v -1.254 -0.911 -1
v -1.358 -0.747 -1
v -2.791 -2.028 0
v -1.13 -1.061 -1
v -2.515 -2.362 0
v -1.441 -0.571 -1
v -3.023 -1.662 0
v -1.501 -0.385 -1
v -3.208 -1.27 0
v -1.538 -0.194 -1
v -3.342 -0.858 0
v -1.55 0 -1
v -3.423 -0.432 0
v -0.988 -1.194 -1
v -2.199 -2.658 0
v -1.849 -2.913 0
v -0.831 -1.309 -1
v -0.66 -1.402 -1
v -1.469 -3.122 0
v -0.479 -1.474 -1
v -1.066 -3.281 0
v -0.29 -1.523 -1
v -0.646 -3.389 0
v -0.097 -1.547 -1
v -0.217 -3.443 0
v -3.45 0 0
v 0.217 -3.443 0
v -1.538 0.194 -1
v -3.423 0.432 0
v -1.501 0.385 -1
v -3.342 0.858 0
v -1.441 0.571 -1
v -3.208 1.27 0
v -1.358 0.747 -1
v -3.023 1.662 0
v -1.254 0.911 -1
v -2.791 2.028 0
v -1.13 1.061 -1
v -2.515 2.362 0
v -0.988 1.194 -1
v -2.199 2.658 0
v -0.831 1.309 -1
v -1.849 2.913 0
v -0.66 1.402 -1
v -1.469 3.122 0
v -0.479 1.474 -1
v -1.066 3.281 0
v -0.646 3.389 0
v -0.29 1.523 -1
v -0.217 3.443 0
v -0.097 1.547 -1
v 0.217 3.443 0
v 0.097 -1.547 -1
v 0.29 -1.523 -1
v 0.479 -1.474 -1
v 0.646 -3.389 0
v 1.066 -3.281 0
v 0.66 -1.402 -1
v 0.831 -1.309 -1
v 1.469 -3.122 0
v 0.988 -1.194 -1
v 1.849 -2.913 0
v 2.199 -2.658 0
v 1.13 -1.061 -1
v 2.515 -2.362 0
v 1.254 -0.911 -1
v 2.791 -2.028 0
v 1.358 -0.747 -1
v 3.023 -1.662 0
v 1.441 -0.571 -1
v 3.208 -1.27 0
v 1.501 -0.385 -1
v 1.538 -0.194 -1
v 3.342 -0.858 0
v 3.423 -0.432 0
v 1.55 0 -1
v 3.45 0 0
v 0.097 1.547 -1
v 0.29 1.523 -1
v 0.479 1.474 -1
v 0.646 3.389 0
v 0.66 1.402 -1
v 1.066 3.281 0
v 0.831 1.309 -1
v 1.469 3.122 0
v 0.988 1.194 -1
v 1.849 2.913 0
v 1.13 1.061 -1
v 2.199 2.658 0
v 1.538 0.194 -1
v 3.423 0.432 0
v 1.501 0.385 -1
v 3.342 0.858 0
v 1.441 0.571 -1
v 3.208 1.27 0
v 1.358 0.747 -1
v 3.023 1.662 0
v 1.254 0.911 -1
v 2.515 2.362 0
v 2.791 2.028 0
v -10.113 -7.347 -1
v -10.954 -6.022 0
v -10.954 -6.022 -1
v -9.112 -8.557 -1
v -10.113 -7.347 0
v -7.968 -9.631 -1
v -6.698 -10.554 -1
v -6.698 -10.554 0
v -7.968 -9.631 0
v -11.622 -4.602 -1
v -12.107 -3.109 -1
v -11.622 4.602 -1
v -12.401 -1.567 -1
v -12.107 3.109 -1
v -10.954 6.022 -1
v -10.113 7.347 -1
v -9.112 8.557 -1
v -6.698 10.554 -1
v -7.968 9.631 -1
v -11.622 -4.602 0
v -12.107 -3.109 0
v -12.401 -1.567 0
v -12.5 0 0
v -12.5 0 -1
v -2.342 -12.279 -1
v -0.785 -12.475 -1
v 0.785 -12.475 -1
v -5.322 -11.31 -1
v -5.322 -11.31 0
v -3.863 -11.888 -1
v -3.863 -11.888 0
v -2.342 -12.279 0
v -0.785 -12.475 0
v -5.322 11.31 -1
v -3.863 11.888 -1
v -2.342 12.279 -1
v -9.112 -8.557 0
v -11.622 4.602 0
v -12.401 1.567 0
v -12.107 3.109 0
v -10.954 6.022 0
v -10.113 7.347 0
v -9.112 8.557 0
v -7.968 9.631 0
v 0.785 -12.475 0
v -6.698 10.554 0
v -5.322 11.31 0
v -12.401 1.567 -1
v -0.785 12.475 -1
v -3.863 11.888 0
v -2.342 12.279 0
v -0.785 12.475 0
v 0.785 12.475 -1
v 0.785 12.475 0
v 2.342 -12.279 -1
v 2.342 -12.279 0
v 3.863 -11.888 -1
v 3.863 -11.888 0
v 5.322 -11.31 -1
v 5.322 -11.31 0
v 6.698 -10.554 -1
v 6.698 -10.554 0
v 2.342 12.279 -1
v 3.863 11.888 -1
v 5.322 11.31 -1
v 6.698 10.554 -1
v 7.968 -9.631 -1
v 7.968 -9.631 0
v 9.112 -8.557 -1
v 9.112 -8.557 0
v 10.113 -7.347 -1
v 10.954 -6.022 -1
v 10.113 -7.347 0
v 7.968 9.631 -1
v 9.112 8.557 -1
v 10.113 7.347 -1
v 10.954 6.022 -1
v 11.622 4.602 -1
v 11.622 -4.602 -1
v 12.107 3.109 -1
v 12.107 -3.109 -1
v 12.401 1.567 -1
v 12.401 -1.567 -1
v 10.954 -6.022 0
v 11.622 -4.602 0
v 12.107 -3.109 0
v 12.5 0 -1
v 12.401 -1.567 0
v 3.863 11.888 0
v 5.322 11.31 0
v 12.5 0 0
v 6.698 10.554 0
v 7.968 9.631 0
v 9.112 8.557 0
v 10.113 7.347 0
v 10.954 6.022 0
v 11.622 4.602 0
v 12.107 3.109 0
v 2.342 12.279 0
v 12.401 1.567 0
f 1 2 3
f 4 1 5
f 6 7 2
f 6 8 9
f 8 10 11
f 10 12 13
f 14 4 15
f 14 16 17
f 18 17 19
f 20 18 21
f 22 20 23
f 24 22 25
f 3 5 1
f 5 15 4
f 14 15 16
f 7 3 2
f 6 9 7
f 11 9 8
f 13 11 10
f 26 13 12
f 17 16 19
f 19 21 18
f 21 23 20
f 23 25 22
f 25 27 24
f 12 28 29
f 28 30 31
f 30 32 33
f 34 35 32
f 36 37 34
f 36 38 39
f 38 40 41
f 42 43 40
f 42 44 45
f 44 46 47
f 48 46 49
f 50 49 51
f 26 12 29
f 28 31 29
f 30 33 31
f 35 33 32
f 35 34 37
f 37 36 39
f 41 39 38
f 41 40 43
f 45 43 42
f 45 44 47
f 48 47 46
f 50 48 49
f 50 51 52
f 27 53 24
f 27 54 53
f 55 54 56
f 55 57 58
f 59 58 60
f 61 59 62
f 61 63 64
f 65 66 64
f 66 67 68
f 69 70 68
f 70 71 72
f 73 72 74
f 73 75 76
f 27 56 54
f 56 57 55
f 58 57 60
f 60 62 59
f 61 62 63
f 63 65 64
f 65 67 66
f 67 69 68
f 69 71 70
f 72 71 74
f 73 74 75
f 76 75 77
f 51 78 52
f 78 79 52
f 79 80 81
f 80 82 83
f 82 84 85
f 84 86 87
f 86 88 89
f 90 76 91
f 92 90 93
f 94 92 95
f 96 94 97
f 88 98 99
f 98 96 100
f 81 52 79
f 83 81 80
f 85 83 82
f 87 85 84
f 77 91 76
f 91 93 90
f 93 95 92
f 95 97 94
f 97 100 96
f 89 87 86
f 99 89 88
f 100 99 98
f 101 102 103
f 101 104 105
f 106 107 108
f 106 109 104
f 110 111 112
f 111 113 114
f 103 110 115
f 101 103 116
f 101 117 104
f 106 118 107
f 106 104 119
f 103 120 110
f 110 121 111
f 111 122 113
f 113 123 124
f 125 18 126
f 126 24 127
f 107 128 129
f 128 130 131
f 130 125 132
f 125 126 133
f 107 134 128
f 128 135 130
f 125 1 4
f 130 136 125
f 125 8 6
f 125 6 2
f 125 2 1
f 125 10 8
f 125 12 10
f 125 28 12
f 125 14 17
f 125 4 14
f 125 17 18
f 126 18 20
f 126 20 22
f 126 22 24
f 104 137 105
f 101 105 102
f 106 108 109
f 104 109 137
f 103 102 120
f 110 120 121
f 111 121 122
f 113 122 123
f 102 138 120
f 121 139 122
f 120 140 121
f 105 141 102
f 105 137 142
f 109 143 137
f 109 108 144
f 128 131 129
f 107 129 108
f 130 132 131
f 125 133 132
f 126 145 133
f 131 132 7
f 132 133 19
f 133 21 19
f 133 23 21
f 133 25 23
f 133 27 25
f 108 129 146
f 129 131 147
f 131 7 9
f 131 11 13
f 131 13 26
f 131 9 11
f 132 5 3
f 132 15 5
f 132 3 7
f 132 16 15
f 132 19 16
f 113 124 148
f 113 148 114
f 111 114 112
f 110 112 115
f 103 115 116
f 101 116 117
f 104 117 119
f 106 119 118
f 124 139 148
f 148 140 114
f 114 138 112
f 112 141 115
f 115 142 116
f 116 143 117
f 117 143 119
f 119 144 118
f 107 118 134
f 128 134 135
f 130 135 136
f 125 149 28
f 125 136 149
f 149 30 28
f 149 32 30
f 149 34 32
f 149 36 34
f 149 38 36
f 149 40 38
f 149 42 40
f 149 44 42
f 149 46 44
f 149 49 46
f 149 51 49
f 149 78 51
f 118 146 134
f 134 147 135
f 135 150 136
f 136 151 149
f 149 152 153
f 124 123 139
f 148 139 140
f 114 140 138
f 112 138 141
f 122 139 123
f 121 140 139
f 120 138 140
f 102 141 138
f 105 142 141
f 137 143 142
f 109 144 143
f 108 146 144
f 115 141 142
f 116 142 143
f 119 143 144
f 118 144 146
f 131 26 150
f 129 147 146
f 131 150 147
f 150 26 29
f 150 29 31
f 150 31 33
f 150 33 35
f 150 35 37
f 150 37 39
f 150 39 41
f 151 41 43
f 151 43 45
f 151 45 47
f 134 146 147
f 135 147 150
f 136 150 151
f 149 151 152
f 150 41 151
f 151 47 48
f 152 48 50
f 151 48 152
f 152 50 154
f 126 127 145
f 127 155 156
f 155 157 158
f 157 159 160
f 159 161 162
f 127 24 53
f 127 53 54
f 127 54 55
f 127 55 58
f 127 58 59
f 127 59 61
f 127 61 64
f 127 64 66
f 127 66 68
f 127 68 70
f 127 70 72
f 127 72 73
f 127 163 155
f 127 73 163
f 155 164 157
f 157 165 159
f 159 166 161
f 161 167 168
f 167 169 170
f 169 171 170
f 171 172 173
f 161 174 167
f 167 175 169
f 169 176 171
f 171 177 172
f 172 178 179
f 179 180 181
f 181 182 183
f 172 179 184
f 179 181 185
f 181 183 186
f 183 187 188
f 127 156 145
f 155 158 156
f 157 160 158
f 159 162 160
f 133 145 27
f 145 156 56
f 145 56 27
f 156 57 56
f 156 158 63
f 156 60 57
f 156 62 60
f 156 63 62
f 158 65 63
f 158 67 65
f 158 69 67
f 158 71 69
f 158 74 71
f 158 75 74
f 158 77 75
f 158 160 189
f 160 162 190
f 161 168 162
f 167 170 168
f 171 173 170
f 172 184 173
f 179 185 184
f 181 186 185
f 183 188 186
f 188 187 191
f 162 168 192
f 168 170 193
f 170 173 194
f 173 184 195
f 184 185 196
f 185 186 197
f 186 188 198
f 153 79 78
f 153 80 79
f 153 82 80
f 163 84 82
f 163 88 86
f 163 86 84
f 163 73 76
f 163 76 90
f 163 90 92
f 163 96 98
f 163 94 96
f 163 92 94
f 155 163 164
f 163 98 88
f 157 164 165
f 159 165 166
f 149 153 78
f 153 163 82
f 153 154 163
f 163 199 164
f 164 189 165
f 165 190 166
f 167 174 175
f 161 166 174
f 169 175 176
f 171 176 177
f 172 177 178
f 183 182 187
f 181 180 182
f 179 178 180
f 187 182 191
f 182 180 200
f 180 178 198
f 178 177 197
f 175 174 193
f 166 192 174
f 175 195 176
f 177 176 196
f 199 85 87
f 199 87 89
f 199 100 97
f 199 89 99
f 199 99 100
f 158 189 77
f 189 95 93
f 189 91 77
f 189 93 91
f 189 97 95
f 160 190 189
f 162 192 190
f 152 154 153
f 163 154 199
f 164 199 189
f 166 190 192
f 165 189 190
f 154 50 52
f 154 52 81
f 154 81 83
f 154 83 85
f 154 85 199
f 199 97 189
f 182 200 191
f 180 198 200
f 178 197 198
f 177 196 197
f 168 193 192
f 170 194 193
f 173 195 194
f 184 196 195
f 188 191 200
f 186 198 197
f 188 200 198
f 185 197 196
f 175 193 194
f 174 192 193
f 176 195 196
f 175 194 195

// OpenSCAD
$fn = 50;

difference() {
	union() {
		translate(v = [0, 0, -1.0]) {
			cylinder(h = 1.0, r = 12.5);
		}
	}
	union() {
		translate(v = [0, 0, 0]) {
			rotate(a = [0, 0, 0]) {
				difference() {
					union() {
						translate(v = [0, 0, -4.0]) {
							cylinder(h = 4.0, r = 1.25);
						}
						translate(v = [0, 0, -1.0]) {
							cylinder(h = 1.0, r1 = 1.55, r2 = 3.45);
						}
						translate(v = [0, 0, -4.0]) {
							cylinder(h = 4.0, r = 1.55);
						}
						translate(v = [0, 0, -4.0]) {
							cylinder(h = 4.0, r = 1.25);
						}
					}
					union();
				}
			}
		}
	}
}
